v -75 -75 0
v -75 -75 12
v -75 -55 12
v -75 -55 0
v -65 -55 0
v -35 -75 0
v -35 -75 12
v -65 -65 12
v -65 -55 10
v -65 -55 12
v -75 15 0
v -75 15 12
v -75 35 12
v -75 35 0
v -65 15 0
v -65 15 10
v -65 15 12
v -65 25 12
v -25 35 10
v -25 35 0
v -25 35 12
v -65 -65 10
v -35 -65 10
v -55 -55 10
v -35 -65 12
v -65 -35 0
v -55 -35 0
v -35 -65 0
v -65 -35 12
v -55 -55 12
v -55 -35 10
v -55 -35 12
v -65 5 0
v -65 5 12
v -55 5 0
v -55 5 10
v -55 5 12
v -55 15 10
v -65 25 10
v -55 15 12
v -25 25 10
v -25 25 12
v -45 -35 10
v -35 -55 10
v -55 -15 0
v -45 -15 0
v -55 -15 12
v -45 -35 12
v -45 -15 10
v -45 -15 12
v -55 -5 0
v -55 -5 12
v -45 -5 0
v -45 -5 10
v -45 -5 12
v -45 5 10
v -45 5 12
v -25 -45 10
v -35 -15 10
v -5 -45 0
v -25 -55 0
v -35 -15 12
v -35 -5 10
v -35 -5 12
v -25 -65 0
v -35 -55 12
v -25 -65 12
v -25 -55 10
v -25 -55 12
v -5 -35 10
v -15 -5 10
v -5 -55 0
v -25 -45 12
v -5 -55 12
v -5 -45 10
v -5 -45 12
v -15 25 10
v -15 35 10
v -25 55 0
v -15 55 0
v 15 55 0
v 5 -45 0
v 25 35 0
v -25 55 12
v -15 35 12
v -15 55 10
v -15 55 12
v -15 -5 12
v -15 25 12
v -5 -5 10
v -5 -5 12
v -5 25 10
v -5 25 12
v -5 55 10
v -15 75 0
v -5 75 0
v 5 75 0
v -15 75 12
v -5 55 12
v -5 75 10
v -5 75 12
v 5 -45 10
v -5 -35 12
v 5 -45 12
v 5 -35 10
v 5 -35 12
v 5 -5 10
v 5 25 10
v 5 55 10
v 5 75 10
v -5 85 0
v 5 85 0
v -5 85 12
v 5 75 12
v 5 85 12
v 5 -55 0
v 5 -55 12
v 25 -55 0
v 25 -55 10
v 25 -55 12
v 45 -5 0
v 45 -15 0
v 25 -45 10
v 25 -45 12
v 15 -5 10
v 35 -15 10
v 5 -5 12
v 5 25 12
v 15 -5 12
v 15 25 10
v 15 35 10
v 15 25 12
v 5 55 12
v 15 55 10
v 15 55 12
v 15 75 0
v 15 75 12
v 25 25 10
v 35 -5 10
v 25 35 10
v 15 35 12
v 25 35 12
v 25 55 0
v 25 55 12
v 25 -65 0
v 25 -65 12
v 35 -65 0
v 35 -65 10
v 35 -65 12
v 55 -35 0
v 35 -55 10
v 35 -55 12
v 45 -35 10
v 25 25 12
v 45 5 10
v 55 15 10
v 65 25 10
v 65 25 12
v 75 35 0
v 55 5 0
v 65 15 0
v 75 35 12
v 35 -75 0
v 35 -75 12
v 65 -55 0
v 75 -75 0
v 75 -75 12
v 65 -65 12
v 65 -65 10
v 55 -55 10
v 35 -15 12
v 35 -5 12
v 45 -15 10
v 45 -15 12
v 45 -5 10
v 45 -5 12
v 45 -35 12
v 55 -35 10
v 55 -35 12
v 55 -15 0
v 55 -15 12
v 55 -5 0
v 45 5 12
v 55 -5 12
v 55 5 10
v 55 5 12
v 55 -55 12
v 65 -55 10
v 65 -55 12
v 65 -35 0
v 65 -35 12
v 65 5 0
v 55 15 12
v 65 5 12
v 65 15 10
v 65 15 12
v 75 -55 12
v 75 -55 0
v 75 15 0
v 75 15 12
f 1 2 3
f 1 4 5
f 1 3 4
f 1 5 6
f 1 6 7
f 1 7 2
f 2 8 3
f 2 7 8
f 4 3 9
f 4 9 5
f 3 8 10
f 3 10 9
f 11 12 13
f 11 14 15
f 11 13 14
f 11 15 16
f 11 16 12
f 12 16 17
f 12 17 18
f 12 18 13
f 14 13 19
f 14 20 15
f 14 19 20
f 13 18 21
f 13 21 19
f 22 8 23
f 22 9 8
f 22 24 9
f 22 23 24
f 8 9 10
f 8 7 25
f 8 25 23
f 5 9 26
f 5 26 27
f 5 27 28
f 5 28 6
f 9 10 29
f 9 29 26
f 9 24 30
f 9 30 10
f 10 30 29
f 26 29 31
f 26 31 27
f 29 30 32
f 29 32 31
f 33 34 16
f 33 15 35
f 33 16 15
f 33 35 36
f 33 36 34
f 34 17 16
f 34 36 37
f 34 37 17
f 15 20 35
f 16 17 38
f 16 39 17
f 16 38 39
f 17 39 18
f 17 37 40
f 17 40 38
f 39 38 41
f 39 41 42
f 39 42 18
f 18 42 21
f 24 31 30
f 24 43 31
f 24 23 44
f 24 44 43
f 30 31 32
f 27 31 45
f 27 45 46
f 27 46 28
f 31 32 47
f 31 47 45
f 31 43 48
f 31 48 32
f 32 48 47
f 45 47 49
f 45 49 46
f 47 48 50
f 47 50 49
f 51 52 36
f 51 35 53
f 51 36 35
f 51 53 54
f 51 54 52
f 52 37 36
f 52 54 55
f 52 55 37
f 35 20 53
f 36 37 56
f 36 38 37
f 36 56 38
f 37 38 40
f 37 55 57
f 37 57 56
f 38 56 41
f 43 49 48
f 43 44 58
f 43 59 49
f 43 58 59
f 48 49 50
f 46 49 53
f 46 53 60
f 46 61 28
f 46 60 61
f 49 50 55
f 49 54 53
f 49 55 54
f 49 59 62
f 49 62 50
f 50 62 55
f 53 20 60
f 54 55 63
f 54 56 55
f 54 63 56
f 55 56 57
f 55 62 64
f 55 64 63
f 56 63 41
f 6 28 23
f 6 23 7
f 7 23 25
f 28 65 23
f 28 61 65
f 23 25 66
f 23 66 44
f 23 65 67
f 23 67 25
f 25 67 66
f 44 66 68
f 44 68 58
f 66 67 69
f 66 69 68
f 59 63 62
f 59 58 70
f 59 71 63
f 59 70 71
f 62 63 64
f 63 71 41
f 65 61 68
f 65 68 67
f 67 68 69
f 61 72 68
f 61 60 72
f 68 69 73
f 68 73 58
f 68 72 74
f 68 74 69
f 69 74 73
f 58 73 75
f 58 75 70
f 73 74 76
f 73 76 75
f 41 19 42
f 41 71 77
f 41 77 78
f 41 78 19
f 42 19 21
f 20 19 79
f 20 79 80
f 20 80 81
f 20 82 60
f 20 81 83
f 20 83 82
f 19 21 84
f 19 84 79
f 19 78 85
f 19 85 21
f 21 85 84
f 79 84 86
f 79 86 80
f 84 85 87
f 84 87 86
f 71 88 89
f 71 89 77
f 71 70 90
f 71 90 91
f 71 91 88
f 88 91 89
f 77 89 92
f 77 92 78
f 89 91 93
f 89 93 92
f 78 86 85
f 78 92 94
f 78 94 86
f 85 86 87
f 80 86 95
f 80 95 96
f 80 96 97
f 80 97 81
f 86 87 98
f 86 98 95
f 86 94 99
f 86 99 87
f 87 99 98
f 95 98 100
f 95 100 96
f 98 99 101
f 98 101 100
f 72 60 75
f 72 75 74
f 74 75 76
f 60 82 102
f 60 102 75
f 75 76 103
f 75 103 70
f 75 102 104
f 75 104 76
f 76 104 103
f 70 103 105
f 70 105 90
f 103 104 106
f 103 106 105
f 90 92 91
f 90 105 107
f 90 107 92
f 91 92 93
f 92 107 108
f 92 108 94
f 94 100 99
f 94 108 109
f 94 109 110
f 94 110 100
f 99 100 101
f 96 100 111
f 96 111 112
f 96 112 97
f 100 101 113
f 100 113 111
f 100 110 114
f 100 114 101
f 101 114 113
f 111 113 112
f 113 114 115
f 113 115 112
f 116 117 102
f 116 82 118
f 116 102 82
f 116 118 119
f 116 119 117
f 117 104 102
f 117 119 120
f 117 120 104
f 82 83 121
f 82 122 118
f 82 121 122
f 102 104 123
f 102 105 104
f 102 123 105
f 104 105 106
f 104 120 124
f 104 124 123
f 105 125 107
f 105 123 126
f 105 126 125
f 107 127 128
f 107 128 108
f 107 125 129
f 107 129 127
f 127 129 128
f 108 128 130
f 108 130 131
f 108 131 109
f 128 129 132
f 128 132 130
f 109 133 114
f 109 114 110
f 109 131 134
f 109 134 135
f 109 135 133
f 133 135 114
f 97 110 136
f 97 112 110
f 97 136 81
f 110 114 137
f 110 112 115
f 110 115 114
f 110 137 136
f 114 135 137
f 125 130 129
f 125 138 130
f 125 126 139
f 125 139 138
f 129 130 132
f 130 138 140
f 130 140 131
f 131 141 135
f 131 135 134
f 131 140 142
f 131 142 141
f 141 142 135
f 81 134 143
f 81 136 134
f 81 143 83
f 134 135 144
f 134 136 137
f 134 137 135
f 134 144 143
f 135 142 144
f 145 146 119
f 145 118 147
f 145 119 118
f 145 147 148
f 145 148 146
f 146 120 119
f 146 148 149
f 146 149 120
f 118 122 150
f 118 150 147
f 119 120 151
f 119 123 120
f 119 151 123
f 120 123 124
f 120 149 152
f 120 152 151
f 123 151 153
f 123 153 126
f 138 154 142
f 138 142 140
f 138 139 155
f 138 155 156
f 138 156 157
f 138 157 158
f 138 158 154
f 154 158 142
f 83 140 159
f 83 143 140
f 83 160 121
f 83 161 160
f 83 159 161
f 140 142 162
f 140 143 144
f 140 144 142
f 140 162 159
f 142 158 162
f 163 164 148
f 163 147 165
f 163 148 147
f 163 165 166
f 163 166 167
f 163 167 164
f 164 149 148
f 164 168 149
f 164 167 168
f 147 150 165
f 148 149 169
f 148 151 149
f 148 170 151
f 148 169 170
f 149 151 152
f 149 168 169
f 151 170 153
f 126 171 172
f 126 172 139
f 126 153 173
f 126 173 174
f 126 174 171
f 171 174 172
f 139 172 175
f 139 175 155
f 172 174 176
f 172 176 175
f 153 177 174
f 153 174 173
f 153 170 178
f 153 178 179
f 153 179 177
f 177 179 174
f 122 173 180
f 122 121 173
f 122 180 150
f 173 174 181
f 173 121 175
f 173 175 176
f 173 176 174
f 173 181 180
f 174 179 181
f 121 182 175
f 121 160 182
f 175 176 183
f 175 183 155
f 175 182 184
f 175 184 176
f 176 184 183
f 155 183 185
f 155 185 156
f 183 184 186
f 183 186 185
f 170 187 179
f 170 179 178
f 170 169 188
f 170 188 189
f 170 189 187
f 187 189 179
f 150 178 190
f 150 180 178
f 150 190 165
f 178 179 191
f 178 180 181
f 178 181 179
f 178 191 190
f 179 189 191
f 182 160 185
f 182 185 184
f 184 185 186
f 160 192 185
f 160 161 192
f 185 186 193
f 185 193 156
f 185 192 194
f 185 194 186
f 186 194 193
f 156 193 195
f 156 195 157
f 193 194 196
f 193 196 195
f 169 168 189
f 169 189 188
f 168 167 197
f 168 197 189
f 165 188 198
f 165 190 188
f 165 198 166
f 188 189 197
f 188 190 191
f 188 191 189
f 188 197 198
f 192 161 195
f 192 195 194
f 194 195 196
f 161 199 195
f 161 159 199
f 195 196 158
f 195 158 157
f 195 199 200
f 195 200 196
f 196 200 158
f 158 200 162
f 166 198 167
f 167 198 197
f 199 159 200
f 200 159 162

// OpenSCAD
// file: pixel_canvas.scad
module pixel(x, y, pixel_color, pixel_height = 1.0) {
    color(pixel_color) {
	linear_extrude(height = pixel_height) {
	    translate([x, y]) {
		square(size = 1, center=true);
	    }
	}
    }
}

module pixel_canvas(canvas_size, pixel_count, pixels, color_palette, color_heights) {
    pixel_size = canvas_size / pixel_count;
    scale([pixel_size, pixel_size, 1.0]) {
	for (coord = pixels) {
	    x = coord[0];
	    y = coord[1];
	    color_index = coord[2];
	    pixel(x=x, y=y, pixel_color=color_palette[color_index], pixel_height=color_heights[color_index] * pixel_size);
	}
    }
}
// main file
use <pixel_canvas.scad>

COLOR_PALETTE = [
  "yellow",
  "black",
];

COLOR_HEIGHTS = [
  1.0,
  1.2,
];

PIXELS = [
     [0, 8, 1],
     [-1, 7, 1], [0, 7, 0], [1, 7, 1],
     [-1, 6, 1], [0, 6, 0], [1, 6, 1],
     [-2, 5, 1], [-1, 5, 0], [0, 5, 0], [1, 5, 0], [2, 5, 1],
     [-2, 4, 1], [-1, 4, 0], [0, 4, 0], [1, 4, 0], [2, 4, 1],
     [-7, 3, 1], [-6, 3, 1], [-5, 3, 1], [-4, 3, 1], [-3, 3, 1], [-2, 3, 0], [-1, 3, 0], [0, 3, 0], [ 1, 3, 0], [2, 3, 0], [3, 3, 1], [4, 3, 1], [5, 3, 1], [6, 3, 1], [7, 3, 1],
     [-7, 2, 1], [-6, 2, 0], [-5, 2, 0], [-4, 2, 0], [-3, 2, 0], [-2, 2, 0], [-1, 2, 1], [0, 2, 0], [ 1, 2, 1], [2, 2, 0], [3, 2, 0], [4, 2, 0], [5, 2, 0], [6, 2, 0], [7, 2, 1],
     [-6, 1, 1], [-5, 1, 0], [-4, 1, 0], [-3, 1, 0], [-2, 1, 0], [-1, 1, 1], [0, 1, 0], [ 1, 1, 1], [2, 1, 0], [3, 1, 0], [4, 1, 0], [5, 1, 0], [6, 1, 1],
     [-5, 0, 1], [-4, 0, 0], [-3, 0, 0], [-2, 0, 0], [-1, 0, 1], [0, 0, 0], [ 1, 0, 1], [2, 0, 0], [3, 0, 0], [4, 0, 0], [5, 0, 1],
     [-4, -1, 1], [-3, -1, 0], [-2, -1, 0], [-1, -1, 0], [0, -1, 0], [1, -1, 0], [2, -1, 0], [3, -1, 0], [4, -1, 1],
     [-5, -2, 1], [-4, -2, 0], [-3, -2, 0], [-2, -2, 0], [-1, -2, 0], [0, -2, 0], [ 1, -2, 0], [2, -2, 0], [3, -2, 0], [4, -2, 0], [5, -2, 1],
     [-5, -3, 1], [-4, -3, 0], [-3, -3, 0], [-2, -3, 0], [-1, -3, 0], [0, -3, 0], [ 1, -3, 0], [2, -3, 0], [3, -3, 0], [4, -3, 0], [5, -3, 1],
     [-6, -4, 1], [-5, -4, 0], [-4, -4, 0], [-3, -4, 0], [-2, -4, 0], [-1, -4, 0], [0, -4, 1], [ 1, -4, 0], [2, -4, 0], [3, -4, 0], [4, -4, 0], [5, -4, 0], [6, -4, 1],
     [-6, -5, 1], [-5, -5, 0], [-4, -5, 0], [-3, -5, 0], [-2, -5, 1], [-1, -5, 1], [ 1, -5, 1], [2, -5, 1], [3, -5, 0], [4, -5, 0], [5, -5, 0], [6, -5, 1],
     [-7, -6, 1], [-6, -6, 0], [-5, -6, 0], [-4, -6, 0], [-3, -6, 1], [3, -6, 1], [4, -6, 0], [5, -6, 0], [6, -6, 0], [7, -6, 1],
     [-7, -7, 1], [-6, -7, 1], [-5, -7, 1], [-4, -7, 1], [4, -7, 1], [5, -7, 1], [6, -7, 1], [7, -7, 1],
];

pixel_canvas(canvas_size=170, pixel_count=17, pixels=PIXELS, color_palette=COLOR_PALETTE, color_heights=COLOR_HEIGHTS);
